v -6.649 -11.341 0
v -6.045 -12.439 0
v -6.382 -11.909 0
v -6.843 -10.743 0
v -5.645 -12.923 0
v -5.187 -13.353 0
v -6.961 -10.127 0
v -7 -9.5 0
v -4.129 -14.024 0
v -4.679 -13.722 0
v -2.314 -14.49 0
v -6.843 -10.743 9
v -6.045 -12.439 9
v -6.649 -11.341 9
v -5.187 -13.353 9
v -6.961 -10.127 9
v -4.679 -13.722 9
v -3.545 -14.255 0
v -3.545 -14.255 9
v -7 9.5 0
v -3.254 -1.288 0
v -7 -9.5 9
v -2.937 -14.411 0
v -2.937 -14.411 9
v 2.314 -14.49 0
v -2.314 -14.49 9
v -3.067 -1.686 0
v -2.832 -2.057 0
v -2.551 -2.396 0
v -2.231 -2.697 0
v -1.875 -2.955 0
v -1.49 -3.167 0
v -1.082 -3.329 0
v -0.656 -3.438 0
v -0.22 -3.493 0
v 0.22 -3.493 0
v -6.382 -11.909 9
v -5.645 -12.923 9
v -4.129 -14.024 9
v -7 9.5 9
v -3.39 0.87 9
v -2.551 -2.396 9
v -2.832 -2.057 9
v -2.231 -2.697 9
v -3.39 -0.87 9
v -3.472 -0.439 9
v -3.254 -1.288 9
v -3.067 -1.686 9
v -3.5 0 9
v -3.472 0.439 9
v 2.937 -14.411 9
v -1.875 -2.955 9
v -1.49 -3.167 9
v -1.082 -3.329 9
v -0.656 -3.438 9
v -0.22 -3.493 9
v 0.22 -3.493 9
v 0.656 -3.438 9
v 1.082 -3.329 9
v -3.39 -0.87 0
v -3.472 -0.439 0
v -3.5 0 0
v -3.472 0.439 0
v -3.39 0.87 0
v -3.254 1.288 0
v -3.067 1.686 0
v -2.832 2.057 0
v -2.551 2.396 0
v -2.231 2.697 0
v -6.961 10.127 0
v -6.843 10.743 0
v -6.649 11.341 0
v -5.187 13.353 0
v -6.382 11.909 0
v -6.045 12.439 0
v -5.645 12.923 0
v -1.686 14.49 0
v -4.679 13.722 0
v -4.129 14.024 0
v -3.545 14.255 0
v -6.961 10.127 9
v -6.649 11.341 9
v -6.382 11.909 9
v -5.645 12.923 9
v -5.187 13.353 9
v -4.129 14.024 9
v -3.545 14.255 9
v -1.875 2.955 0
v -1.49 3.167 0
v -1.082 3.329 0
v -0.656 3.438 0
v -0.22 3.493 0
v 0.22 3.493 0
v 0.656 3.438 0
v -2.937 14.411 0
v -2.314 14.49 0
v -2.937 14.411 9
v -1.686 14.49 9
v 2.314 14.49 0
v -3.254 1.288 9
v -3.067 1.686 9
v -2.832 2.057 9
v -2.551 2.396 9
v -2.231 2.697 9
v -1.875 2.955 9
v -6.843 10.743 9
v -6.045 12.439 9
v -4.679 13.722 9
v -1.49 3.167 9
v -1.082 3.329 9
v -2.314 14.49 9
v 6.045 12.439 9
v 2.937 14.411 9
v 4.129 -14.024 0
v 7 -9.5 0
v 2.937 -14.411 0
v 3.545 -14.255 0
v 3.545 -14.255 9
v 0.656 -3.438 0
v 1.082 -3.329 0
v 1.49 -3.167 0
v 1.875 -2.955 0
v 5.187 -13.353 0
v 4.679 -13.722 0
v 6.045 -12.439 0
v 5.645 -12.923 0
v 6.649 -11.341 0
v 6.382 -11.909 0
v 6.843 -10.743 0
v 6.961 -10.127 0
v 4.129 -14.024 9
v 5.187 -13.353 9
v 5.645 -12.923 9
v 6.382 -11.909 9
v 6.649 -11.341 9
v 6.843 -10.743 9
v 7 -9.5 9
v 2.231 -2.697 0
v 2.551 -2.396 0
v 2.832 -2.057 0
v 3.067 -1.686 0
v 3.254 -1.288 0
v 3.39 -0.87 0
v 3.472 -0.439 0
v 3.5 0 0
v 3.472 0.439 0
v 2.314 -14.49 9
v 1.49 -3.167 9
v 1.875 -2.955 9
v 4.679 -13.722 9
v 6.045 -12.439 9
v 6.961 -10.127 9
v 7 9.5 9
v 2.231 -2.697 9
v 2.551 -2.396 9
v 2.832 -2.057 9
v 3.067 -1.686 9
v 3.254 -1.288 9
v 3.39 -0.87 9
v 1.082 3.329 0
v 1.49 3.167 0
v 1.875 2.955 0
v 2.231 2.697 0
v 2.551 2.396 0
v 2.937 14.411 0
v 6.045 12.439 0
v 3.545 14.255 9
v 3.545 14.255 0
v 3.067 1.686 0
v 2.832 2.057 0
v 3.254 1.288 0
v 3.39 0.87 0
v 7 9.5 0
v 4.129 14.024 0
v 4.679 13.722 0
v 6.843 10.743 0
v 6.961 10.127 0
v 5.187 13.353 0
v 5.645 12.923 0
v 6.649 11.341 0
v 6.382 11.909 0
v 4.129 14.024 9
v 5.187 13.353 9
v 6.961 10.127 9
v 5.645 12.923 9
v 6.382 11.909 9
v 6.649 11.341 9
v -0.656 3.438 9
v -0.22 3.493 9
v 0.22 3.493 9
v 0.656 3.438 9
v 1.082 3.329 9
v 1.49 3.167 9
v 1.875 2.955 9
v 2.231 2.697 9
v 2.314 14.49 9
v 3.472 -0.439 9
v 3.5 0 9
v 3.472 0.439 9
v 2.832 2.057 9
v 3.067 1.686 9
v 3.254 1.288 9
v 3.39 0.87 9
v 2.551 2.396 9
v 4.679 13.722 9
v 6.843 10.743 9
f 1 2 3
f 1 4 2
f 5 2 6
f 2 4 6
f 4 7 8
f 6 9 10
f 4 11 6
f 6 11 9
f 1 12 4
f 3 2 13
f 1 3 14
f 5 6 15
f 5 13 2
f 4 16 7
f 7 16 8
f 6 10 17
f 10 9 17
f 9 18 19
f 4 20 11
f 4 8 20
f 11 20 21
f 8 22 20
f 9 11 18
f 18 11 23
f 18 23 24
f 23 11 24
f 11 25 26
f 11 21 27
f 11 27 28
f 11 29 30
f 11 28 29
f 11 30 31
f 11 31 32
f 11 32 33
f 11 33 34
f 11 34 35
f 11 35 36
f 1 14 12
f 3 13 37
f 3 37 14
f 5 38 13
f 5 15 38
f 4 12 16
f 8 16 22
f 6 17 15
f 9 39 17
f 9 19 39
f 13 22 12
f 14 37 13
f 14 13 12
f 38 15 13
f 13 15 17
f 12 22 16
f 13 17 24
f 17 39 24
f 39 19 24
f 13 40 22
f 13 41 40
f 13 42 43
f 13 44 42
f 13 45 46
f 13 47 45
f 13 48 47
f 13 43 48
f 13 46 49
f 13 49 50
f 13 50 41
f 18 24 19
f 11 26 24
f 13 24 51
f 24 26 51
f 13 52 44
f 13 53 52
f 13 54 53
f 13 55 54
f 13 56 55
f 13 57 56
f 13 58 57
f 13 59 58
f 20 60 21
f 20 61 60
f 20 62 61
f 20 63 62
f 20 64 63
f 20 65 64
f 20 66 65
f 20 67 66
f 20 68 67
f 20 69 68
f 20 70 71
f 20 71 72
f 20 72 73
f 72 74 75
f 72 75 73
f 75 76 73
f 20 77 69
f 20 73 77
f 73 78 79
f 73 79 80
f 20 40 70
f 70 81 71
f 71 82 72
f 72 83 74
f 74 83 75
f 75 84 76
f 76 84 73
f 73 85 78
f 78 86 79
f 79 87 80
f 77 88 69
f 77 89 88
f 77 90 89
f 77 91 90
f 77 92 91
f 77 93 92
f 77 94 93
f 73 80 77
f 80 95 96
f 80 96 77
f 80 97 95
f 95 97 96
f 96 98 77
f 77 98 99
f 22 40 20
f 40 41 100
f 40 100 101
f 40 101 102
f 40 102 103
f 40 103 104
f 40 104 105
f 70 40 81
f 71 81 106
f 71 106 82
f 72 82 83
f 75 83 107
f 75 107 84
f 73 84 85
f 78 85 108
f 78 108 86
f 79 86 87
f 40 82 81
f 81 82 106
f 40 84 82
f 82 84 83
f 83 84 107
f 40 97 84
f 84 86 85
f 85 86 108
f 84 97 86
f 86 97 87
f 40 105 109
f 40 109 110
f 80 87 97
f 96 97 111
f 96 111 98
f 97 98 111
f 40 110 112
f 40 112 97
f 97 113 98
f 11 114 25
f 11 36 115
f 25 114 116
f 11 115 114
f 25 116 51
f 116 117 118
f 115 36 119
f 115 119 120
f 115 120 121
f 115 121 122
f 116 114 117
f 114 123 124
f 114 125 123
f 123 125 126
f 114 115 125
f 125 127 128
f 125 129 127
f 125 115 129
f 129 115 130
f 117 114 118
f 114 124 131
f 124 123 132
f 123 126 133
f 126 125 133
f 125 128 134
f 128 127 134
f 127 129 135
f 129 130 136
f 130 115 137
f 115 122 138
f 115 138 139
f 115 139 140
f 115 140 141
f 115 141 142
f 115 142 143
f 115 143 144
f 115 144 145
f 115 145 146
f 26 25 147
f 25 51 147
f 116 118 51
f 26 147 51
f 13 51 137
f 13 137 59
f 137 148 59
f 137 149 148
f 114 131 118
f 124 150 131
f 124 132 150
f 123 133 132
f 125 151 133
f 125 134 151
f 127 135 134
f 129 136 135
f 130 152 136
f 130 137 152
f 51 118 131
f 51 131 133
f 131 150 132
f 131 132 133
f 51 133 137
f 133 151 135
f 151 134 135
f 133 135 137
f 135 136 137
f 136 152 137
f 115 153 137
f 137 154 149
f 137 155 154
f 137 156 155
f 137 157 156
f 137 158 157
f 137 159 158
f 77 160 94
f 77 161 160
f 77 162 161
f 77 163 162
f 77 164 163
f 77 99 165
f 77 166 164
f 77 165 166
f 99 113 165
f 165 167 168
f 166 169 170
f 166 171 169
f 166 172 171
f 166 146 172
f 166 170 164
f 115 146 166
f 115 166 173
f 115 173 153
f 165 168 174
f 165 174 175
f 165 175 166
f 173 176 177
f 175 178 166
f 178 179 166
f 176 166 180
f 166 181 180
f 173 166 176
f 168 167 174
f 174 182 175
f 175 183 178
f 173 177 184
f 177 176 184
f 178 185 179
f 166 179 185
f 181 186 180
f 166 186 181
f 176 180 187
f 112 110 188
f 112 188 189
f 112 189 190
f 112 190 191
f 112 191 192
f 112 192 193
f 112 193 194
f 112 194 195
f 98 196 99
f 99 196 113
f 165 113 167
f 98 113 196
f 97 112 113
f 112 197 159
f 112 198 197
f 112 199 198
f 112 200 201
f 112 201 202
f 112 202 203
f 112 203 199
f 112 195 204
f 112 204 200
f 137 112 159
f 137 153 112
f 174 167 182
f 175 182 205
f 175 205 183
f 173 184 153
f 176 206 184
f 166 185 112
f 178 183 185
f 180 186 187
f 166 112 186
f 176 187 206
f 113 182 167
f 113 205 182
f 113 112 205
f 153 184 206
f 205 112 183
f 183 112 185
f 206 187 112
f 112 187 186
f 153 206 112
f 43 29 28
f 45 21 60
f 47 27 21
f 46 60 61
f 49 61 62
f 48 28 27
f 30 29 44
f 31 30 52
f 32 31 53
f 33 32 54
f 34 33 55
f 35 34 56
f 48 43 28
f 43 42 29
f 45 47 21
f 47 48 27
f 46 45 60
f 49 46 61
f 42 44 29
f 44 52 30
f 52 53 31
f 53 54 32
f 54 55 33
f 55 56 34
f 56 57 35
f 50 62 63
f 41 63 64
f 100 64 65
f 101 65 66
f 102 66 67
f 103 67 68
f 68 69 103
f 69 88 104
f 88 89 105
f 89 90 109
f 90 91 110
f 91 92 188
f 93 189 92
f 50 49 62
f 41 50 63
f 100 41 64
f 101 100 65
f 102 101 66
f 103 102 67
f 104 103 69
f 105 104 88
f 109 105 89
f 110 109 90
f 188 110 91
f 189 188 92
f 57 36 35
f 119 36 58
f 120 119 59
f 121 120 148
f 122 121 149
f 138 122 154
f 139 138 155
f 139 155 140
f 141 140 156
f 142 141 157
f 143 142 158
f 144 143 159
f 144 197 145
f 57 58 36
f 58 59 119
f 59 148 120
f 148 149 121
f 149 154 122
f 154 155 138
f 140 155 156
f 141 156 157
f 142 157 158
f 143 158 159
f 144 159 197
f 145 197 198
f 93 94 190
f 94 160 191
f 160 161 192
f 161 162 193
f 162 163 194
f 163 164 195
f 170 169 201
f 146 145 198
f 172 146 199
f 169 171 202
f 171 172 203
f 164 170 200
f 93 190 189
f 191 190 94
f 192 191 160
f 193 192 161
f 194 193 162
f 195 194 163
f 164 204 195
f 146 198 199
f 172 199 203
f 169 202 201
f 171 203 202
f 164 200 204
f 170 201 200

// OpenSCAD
$fn = 50;

difference() {
	union() {
		hull() {
			translate(v = [-2.0, 9.5, 0]) {
				cylinder(h = 9, r = 5);
			}
			translate(v = [2.0, 9.5, 0]) {
				cylinder(h = 9, r = 5);
			}
			translate(v = [-2.0, -9.5, 0]) {
				cylinder(h = 9, r = 5);
			}
			translate(v = [2.0, -9.5, 0]) {
				cylinder(h = 9, r = 5);
			}
		}
	}
	union() {
		cylinder(h = 9, r = 3.5);
	}
}
